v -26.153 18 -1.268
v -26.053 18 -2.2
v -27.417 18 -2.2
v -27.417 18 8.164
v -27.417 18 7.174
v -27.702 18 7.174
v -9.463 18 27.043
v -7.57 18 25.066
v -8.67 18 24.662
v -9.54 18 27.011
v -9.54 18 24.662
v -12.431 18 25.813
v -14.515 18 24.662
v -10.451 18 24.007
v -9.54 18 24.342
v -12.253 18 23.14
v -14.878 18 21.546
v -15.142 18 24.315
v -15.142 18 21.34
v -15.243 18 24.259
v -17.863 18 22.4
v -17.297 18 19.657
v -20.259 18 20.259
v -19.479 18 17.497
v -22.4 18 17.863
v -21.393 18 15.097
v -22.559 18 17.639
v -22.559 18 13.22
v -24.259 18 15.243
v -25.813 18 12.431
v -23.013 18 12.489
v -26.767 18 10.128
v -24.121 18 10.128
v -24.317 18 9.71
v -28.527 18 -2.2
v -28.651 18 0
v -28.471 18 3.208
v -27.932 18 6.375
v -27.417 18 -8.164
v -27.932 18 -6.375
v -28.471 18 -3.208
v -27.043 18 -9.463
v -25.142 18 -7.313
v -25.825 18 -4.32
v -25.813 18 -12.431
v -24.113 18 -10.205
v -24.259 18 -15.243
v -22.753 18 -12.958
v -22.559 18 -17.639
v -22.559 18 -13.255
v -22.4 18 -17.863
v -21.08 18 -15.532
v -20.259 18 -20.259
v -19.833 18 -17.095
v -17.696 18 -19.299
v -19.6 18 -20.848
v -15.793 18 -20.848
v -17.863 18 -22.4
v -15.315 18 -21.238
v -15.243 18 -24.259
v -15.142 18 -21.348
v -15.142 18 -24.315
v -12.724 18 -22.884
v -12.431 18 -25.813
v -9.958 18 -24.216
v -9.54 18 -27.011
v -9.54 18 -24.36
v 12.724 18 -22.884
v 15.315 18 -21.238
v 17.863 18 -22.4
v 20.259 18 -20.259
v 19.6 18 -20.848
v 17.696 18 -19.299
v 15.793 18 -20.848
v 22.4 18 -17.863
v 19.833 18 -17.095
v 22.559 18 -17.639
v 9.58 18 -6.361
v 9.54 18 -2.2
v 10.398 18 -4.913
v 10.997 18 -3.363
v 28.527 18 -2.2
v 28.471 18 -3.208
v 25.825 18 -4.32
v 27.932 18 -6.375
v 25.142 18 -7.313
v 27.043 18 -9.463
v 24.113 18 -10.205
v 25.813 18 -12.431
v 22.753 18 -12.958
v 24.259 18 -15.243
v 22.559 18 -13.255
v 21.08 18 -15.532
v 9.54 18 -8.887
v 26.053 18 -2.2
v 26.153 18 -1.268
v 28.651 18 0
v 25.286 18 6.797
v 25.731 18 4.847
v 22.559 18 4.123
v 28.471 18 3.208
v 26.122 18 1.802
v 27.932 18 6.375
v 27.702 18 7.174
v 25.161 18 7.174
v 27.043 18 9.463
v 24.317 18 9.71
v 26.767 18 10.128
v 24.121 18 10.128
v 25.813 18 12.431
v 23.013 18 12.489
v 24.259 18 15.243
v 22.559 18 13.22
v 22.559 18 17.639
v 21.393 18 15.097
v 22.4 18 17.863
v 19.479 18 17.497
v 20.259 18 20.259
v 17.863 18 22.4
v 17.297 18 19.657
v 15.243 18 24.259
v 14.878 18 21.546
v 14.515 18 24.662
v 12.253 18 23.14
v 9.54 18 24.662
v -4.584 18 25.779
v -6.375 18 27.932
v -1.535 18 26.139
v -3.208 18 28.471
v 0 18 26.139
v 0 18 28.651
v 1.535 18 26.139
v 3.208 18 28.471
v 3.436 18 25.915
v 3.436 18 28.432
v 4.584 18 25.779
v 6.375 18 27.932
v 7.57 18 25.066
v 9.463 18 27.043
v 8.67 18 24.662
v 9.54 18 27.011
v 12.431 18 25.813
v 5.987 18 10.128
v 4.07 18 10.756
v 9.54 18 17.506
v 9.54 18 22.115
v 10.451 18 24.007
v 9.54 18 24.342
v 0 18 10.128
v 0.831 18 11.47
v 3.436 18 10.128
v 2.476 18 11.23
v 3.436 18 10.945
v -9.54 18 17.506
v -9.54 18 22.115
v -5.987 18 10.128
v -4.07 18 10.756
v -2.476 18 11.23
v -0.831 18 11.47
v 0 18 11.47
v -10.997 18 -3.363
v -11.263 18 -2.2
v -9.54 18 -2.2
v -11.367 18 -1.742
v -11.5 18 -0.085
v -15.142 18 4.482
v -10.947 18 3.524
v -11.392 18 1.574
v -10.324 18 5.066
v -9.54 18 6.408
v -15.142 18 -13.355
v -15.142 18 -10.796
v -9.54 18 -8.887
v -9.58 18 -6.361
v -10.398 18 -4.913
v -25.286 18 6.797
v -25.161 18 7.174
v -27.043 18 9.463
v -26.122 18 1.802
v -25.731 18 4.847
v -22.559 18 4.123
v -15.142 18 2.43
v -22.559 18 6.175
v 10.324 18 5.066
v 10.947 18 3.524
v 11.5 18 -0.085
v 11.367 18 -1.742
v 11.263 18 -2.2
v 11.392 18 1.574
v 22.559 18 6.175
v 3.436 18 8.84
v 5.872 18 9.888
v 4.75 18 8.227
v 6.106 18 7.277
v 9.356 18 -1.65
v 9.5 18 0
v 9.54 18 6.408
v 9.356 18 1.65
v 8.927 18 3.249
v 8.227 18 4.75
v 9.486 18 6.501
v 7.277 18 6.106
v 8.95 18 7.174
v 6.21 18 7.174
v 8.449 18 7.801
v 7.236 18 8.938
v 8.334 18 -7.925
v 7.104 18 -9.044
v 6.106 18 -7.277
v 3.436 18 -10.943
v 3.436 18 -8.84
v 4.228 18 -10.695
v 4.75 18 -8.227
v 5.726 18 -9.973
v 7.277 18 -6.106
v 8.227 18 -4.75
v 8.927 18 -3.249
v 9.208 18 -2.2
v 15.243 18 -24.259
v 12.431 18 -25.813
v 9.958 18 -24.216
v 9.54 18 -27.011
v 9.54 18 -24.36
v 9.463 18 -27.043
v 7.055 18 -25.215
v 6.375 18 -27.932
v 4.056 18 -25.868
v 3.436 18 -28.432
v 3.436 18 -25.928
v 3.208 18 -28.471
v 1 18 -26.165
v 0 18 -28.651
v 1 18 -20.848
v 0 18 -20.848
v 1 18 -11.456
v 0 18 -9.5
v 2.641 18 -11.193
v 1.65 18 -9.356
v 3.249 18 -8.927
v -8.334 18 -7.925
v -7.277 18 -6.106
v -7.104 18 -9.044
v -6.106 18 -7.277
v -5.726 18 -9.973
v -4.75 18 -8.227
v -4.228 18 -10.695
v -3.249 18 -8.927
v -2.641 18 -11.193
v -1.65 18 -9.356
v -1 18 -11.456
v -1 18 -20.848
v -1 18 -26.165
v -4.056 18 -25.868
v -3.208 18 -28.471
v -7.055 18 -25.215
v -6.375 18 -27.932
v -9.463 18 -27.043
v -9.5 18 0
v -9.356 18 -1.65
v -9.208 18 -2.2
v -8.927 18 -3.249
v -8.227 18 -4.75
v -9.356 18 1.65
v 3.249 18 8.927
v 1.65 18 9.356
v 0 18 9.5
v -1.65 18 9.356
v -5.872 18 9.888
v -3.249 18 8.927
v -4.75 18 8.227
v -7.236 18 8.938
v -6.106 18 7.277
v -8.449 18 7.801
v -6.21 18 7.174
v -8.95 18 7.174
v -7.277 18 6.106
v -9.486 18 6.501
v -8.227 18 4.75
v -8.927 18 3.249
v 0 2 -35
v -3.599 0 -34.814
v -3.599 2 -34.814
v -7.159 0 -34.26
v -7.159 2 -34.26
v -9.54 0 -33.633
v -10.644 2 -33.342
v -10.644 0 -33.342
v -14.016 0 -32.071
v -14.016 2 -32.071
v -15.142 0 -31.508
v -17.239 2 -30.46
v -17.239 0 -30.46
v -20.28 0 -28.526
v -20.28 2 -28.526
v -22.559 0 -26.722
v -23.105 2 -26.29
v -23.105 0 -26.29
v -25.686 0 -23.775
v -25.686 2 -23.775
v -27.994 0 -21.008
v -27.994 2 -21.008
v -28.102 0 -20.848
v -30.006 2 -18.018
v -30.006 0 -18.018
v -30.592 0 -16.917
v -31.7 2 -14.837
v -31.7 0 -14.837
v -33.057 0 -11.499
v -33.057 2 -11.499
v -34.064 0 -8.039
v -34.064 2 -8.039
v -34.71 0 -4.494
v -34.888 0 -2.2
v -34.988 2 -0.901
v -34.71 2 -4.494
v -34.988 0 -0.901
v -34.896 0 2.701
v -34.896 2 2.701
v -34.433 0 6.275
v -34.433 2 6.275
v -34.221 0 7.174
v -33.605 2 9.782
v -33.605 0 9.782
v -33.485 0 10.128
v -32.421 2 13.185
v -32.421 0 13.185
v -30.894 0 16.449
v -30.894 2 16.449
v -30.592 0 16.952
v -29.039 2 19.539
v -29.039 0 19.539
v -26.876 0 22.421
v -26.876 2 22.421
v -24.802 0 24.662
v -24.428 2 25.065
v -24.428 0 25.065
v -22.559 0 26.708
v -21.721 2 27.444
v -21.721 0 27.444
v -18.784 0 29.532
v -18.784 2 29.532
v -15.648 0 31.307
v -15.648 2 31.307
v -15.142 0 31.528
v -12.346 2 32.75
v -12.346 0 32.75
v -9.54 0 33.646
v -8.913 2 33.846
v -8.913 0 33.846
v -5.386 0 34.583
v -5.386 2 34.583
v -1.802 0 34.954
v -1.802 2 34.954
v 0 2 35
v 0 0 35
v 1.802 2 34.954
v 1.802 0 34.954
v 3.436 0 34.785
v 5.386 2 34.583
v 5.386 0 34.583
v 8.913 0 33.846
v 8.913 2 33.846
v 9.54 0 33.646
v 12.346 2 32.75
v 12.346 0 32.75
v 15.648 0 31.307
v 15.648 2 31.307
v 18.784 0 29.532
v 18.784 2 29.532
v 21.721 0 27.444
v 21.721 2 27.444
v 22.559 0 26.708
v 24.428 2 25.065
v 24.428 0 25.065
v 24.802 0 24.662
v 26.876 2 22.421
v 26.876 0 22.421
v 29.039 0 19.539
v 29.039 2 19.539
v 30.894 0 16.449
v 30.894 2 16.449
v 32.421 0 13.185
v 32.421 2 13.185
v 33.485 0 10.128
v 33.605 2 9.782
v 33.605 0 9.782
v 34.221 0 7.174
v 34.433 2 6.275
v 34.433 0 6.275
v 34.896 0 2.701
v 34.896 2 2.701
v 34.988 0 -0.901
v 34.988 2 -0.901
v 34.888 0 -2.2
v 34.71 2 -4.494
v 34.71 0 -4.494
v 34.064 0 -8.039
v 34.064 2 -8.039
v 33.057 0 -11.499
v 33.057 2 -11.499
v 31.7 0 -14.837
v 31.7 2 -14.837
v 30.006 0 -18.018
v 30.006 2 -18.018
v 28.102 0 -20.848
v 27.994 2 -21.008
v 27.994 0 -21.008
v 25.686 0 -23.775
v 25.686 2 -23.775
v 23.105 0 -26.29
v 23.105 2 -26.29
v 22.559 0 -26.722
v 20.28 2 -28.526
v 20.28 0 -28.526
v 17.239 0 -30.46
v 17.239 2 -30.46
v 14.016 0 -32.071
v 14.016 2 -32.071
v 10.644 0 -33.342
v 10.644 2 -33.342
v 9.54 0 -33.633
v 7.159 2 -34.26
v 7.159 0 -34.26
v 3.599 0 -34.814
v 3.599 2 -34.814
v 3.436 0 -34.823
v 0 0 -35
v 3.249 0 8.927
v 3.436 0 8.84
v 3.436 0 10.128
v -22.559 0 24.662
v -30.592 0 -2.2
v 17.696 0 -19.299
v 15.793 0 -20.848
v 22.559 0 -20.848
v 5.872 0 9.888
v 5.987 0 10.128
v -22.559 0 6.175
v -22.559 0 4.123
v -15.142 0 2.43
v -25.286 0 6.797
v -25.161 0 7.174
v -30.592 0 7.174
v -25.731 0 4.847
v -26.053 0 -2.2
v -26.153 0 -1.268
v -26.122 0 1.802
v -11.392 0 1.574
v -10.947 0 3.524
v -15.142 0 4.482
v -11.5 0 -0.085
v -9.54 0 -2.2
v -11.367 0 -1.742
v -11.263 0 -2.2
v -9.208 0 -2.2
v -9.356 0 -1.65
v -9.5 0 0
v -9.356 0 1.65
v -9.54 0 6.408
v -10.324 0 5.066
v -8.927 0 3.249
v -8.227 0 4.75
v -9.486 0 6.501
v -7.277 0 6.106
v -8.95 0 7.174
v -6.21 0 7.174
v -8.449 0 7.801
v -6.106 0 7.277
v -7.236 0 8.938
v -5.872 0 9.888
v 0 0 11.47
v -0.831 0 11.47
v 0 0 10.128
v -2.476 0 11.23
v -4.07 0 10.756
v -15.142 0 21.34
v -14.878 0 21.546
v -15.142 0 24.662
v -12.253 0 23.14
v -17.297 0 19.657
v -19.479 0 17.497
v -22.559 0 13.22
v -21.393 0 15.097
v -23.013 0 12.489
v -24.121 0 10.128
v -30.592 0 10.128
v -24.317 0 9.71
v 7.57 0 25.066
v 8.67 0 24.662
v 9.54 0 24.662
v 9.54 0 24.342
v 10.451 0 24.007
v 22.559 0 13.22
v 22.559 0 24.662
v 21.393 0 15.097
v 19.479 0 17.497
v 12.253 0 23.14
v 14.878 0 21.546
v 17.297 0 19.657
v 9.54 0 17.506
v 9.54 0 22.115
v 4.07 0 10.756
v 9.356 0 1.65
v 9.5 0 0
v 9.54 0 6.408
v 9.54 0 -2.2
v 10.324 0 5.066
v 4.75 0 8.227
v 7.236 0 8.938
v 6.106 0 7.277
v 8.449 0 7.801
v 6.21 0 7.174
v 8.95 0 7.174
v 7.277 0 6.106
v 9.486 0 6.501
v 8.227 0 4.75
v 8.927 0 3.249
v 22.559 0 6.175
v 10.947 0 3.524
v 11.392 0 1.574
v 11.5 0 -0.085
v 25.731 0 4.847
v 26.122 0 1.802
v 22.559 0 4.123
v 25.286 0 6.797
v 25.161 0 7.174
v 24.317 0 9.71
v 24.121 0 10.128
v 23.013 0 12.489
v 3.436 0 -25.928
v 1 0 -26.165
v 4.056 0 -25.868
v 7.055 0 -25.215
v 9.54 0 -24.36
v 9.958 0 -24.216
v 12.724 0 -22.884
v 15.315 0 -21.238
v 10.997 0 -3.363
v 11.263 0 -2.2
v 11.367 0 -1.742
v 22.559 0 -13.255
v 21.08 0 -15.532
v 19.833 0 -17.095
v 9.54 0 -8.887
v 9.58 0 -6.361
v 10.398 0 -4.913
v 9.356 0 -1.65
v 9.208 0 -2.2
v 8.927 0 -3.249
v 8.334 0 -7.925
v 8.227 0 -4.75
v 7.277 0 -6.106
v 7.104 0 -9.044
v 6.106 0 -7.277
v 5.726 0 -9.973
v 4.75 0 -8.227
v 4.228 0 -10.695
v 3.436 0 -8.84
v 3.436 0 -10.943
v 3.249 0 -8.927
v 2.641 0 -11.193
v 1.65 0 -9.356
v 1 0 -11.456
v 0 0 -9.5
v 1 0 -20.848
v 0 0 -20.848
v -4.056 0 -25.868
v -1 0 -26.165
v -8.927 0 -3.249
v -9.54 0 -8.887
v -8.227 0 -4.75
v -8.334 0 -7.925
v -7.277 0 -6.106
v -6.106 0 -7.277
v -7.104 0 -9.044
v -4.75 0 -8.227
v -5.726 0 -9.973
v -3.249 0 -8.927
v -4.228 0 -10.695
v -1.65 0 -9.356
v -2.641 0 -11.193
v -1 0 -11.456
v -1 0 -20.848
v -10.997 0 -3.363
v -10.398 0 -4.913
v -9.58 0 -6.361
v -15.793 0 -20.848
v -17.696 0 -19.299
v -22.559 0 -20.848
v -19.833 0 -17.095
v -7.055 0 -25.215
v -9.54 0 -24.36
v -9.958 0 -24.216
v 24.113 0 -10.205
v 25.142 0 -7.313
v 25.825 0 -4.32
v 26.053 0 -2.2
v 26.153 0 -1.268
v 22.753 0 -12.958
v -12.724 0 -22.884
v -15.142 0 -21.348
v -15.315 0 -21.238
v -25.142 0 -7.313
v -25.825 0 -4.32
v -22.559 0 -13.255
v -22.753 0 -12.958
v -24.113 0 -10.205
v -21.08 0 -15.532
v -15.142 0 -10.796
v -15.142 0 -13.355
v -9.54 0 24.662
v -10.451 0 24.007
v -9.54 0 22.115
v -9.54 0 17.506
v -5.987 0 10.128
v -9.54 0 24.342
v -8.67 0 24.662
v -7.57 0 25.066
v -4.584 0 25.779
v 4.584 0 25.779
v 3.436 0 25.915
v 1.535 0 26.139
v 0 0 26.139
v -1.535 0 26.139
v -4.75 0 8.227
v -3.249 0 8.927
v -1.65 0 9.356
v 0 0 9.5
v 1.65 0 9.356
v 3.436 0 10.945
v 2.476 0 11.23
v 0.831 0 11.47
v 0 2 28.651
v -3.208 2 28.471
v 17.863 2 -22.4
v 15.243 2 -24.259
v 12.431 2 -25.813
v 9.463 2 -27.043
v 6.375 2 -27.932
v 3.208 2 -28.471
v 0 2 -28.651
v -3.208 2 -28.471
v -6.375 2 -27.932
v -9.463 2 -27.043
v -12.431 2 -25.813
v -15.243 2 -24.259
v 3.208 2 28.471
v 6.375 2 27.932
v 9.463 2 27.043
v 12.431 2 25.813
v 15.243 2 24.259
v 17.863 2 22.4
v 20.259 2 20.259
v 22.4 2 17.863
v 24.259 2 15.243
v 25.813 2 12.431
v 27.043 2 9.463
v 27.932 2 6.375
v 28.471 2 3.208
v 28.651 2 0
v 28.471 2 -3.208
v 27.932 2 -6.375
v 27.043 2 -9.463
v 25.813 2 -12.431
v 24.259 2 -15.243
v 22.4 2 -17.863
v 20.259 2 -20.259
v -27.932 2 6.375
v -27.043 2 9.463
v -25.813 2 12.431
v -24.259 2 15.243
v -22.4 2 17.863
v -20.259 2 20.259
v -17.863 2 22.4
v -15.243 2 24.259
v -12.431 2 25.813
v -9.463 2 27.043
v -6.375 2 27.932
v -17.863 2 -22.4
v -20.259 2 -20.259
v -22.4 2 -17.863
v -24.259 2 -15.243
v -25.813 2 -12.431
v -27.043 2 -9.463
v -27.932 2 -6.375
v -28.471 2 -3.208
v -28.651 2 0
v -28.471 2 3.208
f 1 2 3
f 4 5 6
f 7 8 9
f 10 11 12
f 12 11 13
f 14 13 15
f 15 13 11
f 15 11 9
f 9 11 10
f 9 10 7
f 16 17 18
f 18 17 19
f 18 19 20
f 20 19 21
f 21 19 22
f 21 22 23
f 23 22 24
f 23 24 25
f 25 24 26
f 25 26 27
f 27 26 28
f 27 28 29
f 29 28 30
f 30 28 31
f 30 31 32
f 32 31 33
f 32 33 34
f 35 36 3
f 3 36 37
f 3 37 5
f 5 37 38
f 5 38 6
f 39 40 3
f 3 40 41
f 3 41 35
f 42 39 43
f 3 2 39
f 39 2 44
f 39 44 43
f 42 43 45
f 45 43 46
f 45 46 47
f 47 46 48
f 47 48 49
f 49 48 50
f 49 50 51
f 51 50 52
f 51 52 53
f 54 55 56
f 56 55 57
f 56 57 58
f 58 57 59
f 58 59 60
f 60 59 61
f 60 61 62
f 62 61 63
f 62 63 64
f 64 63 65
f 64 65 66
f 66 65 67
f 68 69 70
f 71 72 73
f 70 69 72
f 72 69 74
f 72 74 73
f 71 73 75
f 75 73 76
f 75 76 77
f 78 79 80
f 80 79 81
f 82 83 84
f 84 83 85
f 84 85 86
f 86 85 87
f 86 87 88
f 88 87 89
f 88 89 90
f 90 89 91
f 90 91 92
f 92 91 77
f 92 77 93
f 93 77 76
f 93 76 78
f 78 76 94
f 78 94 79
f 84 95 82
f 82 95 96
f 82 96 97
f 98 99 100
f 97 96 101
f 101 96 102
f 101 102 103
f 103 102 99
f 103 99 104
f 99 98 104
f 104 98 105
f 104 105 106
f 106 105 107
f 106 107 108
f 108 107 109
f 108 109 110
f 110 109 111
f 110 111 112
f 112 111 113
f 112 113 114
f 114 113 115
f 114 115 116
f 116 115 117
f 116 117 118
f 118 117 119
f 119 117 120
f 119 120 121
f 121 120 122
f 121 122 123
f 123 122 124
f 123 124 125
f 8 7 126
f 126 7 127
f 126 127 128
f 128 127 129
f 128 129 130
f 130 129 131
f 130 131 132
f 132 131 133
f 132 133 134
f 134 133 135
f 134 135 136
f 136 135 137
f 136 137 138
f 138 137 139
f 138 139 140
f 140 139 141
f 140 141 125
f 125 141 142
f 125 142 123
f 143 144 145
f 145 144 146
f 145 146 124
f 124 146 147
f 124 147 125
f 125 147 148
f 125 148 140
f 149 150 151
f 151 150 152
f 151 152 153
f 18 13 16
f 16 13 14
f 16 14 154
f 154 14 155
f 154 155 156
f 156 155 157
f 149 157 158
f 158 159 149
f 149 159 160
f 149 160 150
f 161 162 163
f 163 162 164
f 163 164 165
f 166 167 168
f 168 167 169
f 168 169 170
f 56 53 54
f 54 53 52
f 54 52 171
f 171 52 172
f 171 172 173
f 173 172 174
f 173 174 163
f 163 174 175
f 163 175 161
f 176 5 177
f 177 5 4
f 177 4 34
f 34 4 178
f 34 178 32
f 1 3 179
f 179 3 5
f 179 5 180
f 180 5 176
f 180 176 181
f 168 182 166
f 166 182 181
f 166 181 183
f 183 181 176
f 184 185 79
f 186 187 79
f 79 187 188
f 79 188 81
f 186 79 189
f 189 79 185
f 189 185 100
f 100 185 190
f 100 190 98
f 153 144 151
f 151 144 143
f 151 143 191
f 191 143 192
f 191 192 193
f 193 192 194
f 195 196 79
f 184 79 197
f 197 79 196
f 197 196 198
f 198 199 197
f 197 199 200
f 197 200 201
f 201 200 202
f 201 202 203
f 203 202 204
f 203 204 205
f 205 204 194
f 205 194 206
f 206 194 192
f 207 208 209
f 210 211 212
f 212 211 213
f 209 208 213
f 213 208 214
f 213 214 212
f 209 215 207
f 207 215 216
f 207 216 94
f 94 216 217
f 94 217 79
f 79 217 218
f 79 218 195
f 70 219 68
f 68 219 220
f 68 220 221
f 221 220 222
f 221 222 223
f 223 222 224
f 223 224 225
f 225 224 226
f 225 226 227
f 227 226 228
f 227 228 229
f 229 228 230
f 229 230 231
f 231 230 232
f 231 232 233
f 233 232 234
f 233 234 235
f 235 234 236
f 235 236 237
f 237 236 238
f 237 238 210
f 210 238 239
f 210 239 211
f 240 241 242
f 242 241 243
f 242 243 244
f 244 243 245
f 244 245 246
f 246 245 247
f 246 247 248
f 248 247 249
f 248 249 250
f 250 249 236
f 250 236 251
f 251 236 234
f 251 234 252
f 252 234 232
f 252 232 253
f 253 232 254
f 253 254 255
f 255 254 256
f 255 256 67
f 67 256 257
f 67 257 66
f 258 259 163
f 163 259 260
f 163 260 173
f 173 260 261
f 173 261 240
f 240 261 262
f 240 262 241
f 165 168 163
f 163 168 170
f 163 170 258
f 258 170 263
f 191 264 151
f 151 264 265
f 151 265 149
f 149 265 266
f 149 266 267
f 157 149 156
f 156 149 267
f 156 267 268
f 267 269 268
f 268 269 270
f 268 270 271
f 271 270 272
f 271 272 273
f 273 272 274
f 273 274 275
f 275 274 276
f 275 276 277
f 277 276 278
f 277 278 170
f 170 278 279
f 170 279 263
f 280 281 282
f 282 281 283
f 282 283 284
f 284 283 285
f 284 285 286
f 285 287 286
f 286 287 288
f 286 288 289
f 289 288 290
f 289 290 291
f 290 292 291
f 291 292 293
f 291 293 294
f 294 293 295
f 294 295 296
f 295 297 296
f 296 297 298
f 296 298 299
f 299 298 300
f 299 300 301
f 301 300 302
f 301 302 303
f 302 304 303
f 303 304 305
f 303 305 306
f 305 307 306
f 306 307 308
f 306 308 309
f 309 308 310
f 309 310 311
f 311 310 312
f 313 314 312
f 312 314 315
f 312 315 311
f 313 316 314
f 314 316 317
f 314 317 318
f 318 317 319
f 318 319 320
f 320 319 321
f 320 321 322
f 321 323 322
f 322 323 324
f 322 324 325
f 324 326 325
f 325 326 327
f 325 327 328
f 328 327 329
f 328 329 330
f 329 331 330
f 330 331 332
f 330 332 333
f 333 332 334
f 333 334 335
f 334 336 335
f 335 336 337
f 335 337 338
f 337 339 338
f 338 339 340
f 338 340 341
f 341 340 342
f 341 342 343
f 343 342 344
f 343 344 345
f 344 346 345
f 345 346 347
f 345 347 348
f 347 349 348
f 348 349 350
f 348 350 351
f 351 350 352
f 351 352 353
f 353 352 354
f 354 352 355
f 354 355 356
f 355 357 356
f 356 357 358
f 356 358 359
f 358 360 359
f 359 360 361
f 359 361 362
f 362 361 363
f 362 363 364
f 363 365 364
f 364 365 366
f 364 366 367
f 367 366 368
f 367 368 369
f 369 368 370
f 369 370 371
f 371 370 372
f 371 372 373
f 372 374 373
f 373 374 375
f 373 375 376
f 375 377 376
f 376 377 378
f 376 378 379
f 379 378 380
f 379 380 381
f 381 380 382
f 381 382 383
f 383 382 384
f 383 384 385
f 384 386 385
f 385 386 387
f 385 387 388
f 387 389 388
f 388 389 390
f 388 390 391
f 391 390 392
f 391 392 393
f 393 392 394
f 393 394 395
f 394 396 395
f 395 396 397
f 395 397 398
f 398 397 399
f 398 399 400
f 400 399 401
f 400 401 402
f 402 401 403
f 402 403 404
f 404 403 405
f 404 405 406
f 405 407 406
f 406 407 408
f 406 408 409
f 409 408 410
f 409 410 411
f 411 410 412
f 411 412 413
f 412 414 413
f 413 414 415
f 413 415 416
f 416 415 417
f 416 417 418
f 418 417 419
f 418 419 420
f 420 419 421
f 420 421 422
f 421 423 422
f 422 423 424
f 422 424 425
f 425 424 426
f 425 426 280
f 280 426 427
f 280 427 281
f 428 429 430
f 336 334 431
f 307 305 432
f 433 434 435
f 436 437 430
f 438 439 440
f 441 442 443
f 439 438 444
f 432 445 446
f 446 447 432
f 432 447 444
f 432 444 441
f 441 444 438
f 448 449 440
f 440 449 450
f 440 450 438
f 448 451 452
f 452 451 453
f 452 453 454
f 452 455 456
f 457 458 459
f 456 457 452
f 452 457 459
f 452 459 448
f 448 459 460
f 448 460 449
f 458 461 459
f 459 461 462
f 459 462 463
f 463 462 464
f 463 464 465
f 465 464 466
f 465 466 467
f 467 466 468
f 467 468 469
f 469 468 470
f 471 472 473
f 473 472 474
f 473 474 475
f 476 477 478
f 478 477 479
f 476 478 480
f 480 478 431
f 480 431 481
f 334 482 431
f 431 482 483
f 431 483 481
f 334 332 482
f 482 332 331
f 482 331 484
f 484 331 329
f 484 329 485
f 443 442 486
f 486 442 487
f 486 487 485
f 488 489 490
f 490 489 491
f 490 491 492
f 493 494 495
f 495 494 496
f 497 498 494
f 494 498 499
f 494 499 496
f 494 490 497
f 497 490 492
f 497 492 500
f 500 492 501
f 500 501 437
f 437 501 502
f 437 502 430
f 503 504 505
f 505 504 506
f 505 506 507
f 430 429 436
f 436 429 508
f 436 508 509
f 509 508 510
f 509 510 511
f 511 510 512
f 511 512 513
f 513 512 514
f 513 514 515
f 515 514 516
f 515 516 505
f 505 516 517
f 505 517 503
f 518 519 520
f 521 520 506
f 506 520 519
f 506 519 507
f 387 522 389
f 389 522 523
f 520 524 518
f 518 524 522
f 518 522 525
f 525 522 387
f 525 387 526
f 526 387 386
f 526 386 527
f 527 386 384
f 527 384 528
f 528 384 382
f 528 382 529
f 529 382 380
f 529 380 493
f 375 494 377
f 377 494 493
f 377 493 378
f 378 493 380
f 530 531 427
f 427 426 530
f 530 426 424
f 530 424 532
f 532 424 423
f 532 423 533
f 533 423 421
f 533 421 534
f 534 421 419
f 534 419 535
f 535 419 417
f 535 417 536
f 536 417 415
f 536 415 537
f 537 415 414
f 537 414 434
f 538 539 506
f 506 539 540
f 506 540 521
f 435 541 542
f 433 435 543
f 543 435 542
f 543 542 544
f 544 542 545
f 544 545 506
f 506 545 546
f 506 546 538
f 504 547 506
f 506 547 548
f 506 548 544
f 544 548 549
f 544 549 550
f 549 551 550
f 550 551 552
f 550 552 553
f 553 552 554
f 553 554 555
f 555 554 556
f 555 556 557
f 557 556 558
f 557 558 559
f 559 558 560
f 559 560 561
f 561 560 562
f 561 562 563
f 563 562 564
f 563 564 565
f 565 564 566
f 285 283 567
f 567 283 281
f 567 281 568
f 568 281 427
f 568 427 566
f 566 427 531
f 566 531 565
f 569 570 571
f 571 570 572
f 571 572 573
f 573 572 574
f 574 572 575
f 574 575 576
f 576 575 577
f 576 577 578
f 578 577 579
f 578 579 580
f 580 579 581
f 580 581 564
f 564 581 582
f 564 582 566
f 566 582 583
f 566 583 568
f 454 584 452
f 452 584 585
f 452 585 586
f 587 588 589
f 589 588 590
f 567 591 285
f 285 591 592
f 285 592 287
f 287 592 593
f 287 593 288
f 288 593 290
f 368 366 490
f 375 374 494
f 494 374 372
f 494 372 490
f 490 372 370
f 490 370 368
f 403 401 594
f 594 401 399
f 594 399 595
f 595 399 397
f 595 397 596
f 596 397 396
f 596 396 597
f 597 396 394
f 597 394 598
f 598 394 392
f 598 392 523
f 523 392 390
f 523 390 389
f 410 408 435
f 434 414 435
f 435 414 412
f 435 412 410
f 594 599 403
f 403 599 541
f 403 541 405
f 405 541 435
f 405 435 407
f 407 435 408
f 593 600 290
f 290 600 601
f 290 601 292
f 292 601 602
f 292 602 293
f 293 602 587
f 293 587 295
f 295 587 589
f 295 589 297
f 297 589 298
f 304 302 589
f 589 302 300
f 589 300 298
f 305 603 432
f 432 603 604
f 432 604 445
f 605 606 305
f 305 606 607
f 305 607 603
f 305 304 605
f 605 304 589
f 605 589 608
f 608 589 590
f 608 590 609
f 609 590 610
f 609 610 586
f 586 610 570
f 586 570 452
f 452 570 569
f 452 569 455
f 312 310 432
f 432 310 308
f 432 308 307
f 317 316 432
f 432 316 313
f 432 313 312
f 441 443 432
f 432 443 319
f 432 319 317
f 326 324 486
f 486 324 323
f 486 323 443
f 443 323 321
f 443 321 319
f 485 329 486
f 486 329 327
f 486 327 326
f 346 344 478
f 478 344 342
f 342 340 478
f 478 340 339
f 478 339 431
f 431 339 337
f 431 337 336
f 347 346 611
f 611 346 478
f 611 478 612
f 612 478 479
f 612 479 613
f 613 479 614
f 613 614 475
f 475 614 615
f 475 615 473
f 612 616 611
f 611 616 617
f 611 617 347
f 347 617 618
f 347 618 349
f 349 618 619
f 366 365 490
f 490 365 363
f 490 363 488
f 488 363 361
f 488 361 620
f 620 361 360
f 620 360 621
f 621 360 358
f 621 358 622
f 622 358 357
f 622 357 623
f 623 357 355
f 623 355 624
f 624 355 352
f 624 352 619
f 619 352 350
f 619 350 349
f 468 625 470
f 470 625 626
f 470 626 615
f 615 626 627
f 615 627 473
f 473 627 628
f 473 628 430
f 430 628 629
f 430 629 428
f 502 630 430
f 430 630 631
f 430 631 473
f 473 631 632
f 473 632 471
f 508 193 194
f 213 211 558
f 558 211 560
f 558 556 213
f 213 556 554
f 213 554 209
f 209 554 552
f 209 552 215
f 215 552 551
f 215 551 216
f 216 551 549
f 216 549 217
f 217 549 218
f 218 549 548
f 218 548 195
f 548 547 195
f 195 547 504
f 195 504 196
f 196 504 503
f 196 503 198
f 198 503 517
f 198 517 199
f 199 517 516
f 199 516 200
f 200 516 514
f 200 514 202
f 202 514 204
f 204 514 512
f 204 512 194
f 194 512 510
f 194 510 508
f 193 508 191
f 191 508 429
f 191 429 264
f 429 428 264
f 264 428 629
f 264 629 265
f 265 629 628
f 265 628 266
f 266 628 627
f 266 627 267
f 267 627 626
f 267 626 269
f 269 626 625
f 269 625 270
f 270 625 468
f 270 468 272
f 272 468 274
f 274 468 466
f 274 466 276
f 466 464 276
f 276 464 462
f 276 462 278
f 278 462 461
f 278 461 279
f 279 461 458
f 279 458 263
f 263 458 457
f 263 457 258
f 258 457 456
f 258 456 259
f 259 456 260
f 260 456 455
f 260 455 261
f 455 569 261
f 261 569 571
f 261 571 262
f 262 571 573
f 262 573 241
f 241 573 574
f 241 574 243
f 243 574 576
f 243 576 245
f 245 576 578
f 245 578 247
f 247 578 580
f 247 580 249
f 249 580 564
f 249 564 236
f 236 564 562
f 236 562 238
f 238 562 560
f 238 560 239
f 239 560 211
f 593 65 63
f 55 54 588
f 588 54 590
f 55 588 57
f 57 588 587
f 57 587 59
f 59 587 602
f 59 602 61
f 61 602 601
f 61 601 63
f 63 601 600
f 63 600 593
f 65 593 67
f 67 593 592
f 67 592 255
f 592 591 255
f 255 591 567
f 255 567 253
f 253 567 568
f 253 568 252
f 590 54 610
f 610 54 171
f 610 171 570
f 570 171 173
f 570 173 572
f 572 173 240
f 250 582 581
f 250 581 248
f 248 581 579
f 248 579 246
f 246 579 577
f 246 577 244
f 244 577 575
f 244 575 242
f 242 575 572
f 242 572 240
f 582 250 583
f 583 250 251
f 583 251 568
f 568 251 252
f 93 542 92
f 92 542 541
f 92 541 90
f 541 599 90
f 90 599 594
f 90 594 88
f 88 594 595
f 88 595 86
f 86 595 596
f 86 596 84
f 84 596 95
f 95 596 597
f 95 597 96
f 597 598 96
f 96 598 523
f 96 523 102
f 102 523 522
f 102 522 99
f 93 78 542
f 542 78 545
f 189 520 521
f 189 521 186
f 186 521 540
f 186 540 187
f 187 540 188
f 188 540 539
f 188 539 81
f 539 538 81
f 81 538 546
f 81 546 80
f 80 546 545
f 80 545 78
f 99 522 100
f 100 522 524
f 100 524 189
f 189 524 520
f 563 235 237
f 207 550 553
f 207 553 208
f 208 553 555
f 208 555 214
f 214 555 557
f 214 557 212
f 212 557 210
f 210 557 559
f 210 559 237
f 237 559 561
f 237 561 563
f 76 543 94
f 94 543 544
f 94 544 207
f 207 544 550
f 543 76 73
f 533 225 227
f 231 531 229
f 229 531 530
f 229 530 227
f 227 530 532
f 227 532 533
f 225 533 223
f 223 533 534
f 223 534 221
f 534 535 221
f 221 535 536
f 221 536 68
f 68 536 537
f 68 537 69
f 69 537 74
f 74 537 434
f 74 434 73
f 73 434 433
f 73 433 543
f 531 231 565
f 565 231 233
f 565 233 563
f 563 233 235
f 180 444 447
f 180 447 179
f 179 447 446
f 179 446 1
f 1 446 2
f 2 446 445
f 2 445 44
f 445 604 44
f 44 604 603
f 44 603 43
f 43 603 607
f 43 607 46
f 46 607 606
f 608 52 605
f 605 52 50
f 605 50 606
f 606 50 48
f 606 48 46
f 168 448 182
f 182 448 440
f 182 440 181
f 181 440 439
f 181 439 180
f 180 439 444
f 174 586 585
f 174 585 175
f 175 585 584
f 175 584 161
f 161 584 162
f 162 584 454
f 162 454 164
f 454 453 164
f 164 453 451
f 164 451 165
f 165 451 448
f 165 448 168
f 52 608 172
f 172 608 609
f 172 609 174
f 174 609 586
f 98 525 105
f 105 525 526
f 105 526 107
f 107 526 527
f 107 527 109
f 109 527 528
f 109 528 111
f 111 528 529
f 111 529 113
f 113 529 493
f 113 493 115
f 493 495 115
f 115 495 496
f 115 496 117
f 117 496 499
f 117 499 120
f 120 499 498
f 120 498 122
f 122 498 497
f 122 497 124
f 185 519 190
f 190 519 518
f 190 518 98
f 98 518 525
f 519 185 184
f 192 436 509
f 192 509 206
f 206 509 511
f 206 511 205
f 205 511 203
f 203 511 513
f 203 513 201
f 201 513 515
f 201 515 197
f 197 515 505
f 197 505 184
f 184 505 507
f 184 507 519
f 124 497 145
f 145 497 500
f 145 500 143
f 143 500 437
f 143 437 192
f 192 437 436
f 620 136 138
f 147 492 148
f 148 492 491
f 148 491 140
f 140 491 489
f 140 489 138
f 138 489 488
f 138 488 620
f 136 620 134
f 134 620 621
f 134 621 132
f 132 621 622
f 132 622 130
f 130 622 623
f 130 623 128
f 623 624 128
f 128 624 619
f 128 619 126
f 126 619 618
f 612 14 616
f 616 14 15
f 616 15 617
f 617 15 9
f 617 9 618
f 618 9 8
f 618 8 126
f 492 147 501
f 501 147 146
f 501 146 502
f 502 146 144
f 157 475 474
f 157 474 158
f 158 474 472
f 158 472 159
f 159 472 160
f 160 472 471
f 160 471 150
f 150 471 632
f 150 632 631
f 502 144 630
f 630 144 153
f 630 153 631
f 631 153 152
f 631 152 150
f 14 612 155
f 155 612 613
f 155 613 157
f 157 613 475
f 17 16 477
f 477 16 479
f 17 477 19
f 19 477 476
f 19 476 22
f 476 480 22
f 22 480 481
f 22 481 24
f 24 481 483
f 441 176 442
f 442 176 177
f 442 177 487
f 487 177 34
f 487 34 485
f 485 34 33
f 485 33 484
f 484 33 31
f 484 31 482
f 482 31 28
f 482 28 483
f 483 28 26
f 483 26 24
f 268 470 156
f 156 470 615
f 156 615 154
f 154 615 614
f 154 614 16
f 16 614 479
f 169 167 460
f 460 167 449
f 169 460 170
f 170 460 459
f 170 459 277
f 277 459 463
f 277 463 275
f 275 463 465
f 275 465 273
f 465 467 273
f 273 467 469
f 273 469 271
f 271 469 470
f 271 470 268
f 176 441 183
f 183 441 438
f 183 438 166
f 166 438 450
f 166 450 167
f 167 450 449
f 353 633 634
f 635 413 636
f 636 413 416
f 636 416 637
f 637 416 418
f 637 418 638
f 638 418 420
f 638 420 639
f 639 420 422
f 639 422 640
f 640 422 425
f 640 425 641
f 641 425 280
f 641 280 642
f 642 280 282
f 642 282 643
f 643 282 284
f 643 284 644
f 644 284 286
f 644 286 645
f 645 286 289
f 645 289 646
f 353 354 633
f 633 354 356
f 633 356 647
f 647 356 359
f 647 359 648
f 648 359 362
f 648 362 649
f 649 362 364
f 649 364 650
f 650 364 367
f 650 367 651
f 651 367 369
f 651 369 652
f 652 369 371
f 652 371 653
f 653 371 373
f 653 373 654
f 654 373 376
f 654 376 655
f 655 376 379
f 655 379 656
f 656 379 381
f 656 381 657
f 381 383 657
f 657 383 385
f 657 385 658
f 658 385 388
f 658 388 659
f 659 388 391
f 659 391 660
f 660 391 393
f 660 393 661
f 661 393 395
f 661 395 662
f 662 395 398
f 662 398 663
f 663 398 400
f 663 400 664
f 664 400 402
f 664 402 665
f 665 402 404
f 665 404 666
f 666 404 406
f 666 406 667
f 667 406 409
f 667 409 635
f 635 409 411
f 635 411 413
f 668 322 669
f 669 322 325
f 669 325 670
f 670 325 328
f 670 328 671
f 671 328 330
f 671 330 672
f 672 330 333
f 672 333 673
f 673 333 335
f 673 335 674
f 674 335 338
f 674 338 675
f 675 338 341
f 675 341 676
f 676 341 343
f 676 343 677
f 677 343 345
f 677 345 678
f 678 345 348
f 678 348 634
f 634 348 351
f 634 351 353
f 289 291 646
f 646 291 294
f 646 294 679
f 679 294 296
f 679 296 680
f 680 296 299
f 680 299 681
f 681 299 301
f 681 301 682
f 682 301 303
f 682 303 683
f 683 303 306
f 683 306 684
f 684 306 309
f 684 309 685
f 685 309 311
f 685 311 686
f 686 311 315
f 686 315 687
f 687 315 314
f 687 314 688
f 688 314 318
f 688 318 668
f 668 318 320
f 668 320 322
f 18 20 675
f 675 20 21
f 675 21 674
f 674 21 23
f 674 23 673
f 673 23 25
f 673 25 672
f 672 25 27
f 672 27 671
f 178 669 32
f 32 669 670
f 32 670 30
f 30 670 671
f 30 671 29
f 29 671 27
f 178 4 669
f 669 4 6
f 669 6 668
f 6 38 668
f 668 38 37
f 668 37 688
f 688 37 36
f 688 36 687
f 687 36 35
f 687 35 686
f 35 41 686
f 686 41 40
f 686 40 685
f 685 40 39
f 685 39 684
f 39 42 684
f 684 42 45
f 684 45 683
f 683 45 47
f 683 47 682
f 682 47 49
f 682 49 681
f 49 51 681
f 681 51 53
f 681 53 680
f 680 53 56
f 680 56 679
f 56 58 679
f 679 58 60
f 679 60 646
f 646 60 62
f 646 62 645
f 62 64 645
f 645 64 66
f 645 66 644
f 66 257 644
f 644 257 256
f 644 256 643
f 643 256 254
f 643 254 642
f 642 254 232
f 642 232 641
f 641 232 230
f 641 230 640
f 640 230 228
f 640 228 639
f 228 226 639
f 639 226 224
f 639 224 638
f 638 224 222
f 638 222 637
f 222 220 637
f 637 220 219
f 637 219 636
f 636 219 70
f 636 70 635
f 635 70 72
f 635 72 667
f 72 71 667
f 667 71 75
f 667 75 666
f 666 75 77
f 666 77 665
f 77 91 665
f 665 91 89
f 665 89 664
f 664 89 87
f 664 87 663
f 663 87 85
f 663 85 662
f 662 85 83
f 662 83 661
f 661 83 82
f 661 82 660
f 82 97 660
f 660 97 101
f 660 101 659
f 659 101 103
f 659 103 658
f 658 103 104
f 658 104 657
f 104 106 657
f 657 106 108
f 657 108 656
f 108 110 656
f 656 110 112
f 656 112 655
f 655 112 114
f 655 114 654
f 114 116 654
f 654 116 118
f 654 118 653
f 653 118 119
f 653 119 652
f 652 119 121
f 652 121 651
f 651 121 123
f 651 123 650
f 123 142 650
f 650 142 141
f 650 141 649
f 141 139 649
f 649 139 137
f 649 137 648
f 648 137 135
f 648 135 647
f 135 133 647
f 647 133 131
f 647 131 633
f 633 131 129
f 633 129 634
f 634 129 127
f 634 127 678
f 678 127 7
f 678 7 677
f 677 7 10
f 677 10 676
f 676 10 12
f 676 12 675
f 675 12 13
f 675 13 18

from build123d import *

# Parameters (mm, degrees)
SKETCH_1_R          = 35
SKETCH_1_R_2        = 9.5
EXTRUDE_1_DEPTH     = 18
SKETCH_2_R          = 40.856384021
SKETCH_2_R_2        = 28.650737954
CUT_EXTRUDE_1_DEPTH = 16


with BuildPart() as part:
    # 草图1 → 凸台-拉伸1 (new body)
    with BuildSketch(Plane(origin=(0, 0, 0), x_dir=(1, 0, 0), z_dir=(0, 1, 0))):
        Circle(SKETCH_1_R)
        Circle(SKETCH_1_R_2, mode=Mode.SUBTRACT)
        with BuildLine():
            Line((19.832862473, 17.095228055), (8.333515071, 7.924804513))
            ThreePointArc((8.333515071, 7.924804513), (4.989663, 10.361141981), (1, 11.456439237))
            Line((1, 11.456439237), (1, 26.164656621))
            ThreePointArc((1, 26.164656621), (11.360707431, 23.59075206), (19.832862473, 17.095228055))
        make_face(mode=Mode.SUBTRACT)
        with BuildLine():
            Line((-1, 26.164656621), (-1, 11.456439237))
            ThreePointArc((-1, 11.456439237), (-4.989663, 10.361141981), (-8.333515071, 7.924804513))
            Line((-8.333515071, 7.924804513), (-19.832862473, 17.095228055))
            ThreePointArc((-19.832862473, 17.095228055), (-11.360707431, 23.59075206), (-1, 26.164656621))
        make_face(mode=Mode.SUBTRACT)
        with BuildLine():
            Line((21.079842076, 15.53156509), (9.580494675, 6.361141548))
            ThreePointArc((9.580494675, 6.361141548), (11.21167099, 2.55899074), (11.391723321, -1.574369647))
            Line((11.391723321, -1.574369647), (25.731174987, -4.847255916))
            ThreePointArc((25.731174987, -4.847255916), (25.527277881, 5.826434595), (21.079842076, 15.53156509))
        make_face(mode=Mode.SUBTRACT)
        with BuildLine():
            Line((25.286133119, -6.79711174), (10.946681453, -3.524225471))
            ThreePointArc((10.946681453, -3.524225471), (8.991062048, -7.170132721), (5.871731561, -9.888011351))
            Line((5.871731561, -9.888011351), (12.253387915, -23.139657316))
            ThreePointArc((12.253387915, -23.139657316), (20.471287425, -16.325306958), (25.286133119, -6.79711174))
        make_face(mode=Mode.SUBTRACT)
        with BuildLine():
            Line((10.45145018, -24.007424794), (4.069793825, -10.755778829))
            ThreePointArc((4.069793825, -10.755778829), (0, -11.5), (-4.069793825, -10.755778829))
            Line((-4.069793825, -10.755778829), (-10.45145018, -24.007424794))
            ThreePointArc((-10.45145018, -24.007424794), (0, -26.183759396), (10.45145018, -24.007424794))
        make_face(mode=Mode.SUBTRACT)
        with BuildLine():
            Line((-12.253387915, -23.139657316), (-5.871731561, -9.888011351))
            ThreePointArc((-5.871731561, -9.888011351), (-8.991062048, -7.170132721), (-10.946681453, -3.524225471))
            Line((-10.946681453, -3.524225471), (-25.286133119, -6.79711174))
            ThreePointArc((-25.286133119, -6.79711174), (-20.471287425, -16.325306958), (-12.253387915, -23.139657316))
        make_face(mode=Mode.SUBTRACT)
        with BuildLine():
            Line((-25.731174987, -4.847255916), (-11.391723321, -1.574369647))
            ThreePointArc((-11.391723321, -1.574369647), (-11.21167099, 2.55899074), (-9.580494675, 6.361141548))
            Line((-9.580494675, 6.361141548), (-21.079842076, 15.53156509))
            ThreePointArc((-21.079842076, 15.53156509), (-25.527277881, 5.826434595), (-25.731174987, -4.847255916))
        make_face(mode=Mode.SUBTRACT)
    extrude(amount=EXTRUDE_1_DEPTH)

    # 草图2 → 切除-拉伸1 (cut)
    with BuildSketch(Plane(origin=(0, 18, 0), x_dir=(1, 0, 0), z_dir=(0, 1, 0))):
        Circle(SKETCH_2_R)
        Circle(SKETCH_2_R_2, mode=Mode.SUBTRACT)
    extrude(amount=-CUT_EXTRUDE_1_DEPTH, mode=Mode.SUBTRACT)


solid = part.part
